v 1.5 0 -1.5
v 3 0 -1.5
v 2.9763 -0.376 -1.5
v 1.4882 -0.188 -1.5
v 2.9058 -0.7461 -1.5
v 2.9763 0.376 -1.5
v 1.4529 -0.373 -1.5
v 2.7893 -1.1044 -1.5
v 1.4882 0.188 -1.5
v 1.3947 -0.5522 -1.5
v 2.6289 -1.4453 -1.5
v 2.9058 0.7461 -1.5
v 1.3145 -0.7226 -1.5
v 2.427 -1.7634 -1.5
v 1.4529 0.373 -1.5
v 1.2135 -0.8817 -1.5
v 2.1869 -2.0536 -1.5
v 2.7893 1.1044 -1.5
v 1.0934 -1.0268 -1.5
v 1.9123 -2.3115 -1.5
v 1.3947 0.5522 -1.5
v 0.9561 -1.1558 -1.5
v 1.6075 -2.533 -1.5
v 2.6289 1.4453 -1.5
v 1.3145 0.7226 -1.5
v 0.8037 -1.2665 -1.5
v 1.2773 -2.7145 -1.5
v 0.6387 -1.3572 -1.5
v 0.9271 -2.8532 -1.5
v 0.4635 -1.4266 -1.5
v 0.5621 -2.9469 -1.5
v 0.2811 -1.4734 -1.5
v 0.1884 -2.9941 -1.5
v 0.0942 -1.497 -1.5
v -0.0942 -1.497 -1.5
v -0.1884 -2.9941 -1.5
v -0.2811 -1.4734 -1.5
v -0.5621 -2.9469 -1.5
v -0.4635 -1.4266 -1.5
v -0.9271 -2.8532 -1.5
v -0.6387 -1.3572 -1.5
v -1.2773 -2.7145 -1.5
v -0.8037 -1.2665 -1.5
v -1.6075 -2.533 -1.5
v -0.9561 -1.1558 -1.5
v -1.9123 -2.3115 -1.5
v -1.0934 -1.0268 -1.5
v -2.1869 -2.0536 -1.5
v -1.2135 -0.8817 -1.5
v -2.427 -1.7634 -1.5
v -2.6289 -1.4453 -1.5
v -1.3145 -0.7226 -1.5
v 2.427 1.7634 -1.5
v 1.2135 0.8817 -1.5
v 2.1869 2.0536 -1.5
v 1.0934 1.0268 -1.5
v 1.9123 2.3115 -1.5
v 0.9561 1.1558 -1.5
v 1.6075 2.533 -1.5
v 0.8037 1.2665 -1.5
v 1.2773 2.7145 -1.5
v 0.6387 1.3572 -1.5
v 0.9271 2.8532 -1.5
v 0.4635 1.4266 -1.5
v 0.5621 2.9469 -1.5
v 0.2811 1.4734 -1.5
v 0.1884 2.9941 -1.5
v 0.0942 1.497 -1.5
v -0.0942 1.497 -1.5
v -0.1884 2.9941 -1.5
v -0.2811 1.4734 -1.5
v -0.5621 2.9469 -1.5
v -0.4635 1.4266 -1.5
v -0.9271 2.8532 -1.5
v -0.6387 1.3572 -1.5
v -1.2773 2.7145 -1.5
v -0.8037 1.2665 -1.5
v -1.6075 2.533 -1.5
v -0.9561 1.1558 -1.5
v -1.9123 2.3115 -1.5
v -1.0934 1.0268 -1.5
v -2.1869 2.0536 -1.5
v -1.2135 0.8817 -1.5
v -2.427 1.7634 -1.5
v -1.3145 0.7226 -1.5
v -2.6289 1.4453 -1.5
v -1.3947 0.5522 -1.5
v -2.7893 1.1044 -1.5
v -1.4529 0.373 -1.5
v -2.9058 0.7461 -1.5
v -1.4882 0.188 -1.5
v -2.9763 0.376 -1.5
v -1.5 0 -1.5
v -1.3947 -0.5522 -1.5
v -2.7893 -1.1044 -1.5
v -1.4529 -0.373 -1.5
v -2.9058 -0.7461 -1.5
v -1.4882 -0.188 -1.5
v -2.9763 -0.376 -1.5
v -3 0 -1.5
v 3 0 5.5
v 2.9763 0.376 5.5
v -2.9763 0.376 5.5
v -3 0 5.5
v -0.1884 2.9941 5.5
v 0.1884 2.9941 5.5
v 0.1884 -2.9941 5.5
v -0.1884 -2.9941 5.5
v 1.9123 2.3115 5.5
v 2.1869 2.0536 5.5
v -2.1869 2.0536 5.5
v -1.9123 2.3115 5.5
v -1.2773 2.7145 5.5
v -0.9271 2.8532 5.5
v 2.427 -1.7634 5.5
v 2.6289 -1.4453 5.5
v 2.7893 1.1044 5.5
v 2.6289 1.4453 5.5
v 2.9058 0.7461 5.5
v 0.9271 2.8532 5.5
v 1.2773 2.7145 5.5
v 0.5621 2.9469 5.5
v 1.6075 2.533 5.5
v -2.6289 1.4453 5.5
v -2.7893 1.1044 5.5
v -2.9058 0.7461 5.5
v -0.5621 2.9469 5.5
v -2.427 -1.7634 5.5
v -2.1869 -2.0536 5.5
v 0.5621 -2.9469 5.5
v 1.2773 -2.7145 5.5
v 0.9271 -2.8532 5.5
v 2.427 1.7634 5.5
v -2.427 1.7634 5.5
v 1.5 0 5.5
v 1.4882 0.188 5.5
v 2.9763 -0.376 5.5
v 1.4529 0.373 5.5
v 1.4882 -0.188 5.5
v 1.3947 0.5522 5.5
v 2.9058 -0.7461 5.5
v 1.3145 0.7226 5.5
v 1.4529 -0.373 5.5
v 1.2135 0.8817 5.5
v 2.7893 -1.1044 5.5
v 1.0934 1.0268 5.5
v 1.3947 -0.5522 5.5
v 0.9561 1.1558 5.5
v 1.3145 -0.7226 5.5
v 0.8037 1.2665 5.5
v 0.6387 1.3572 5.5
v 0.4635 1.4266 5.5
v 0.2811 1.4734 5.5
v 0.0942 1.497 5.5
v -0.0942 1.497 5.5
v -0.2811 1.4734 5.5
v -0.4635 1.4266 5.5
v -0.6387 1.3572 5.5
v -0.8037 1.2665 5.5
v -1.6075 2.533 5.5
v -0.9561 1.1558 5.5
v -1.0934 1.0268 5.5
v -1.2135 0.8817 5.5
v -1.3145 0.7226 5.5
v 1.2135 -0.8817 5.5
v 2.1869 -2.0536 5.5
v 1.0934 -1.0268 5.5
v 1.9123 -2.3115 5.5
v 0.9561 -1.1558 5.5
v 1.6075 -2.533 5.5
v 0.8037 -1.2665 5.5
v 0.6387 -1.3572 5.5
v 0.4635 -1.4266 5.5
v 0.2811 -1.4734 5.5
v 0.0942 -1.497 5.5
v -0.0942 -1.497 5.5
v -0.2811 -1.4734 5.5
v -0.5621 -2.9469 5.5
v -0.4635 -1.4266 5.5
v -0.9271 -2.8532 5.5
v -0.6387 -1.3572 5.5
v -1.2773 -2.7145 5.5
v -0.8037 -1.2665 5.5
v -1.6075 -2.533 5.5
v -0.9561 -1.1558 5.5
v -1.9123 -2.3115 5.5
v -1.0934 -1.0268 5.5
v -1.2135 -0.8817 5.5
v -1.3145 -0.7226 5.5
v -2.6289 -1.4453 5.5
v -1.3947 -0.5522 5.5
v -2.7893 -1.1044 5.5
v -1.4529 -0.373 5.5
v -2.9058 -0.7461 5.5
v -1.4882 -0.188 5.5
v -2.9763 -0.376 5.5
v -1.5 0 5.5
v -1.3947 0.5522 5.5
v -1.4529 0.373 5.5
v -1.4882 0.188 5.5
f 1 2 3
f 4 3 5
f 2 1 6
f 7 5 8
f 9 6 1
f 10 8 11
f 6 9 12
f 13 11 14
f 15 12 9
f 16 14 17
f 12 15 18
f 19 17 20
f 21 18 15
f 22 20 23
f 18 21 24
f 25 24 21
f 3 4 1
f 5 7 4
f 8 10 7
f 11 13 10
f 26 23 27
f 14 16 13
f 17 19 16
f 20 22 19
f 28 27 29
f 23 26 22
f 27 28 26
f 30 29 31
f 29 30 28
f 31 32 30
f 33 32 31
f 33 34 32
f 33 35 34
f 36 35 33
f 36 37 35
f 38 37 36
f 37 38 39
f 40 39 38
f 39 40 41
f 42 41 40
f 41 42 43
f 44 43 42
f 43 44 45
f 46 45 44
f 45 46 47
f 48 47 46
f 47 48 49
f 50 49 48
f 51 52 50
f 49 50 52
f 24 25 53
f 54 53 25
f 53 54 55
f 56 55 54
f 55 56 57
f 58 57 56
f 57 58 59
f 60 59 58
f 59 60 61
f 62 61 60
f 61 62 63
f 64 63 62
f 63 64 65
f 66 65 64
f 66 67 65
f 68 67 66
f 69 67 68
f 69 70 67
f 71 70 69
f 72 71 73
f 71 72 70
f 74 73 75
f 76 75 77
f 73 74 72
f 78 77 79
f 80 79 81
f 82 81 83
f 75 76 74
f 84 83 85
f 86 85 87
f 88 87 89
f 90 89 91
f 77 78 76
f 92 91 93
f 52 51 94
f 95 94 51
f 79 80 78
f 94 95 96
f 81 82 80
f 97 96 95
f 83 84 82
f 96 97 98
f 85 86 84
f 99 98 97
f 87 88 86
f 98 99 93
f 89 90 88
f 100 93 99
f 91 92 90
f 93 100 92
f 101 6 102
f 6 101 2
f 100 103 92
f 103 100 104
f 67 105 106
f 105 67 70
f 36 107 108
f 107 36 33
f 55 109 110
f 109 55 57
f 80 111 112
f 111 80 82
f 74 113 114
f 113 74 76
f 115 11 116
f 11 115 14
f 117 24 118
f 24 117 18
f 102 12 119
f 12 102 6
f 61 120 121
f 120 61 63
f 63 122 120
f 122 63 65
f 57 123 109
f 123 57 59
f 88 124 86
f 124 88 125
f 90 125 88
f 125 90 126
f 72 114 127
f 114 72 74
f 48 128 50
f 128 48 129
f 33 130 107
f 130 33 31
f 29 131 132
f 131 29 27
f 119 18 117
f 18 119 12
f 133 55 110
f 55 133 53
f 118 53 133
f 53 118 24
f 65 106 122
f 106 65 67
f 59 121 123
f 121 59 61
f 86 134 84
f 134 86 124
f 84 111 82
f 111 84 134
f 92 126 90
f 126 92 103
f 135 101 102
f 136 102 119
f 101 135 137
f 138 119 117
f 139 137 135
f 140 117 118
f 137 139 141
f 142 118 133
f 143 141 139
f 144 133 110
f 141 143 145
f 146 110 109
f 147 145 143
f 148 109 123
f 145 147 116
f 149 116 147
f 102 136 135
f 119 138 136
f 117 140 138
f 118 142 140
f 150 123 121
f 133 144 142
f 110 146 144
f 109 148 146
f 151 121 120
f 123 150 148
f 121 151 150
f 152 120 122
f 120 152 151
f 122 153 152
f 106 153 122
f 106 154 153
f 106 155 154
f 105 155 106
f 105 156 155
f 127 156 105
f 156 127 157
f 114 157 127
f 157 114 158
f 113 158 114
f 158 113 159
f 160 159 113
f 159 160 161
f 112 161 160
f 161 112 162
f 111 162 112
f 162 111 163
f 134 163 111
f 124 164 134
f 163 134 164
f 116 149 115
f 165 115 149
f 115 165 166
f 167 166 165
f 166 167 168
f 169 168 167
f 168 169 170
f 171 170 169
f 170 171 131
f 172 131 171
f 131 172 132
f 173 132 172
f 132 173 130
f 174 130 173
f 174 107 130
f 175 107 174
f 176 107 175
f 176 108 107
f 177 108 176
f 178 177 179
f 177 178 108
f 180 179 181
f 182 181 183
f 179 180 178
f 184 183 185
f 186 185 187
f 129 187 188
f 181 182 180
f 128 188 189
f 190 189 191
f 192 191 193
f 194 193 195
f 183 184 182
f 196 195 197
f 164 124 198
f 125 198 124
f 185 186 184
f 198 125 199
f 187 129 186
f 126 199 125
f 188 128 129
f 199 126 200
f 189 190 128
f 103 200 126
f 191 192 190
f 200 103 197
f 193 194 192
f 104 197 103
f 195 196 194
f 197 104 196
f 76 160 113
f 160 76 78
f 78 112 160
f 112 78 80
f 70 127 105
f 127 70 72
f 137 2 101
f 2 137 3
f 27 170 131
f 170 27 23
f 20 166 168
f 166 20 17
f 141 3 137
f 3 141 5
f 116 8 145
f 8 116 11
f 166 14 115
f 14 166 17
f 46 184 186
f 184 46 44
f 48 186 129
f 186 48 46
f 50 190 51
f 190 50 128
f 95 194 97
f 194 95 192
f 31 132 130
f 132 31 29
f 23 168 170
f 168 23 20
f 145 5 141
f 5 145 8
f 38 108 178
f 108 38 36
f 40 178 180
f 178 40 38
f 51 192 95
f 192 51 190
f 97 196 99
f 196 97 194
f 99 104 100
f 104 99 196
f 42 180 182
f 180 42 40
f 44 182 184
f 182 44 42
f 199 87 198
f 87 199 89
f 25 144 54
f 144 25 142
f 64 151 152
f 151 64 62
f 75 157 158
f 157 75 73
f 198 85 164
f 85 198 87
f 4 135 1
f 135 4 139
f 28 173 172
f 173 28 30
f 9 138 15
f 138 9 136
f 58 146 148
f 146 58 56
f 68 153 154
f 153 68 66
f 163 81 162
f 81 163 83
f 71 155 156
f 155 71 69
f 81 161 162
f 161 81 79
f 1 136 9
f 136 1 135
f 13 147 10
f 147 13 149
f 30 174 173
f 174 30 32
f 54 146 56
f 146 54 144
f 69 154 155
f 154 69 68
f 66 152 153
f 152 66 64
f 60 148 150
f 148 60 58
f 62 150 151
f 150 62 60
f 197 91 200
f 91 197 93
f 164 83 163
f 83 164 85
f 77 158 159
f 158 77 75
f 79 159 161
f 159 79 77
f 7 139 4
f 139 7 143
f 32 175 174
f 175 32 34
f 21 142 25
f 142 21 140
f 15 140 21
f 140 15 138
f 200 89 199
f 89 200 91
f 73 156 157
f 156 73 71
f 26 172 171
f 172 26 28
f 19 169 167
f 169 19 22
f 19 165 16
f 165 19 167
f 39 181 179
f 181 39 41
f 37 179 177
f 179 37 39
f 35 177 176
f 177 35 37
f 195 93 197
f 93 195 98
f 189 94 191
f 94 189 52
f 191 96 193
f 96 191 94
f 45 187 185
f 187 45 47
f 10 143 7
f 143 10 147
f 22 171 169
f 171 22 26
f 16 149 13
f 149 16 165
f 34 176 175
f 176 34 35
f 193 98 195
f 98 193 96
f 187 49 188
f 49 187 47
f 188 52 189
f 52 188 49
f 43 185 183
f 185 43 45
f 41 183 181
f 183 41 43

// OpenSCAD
$fn = 50;


difference() {
	union() {
		translate(v = [0, 0, -1.5000000000]) {
			rotate(a = [0, 0, 0]) {
				cylinder(h = 3, r = 1.0000000000);
			}
		}
		translate(v = [0, 0, -1.5000000000]) {
			rotate(a = [0, 0, 0]) {
				cylinder(h = 7, r = 3.0000000000);
			}
		}
	}
	union() {
		translate(v = [0, 0, -125.0000000000]) {
			rotate(a = [0, 0, 0]) {
				cylinder(h = 250, r = 1.5000000000);
			}
		}
	}
}
